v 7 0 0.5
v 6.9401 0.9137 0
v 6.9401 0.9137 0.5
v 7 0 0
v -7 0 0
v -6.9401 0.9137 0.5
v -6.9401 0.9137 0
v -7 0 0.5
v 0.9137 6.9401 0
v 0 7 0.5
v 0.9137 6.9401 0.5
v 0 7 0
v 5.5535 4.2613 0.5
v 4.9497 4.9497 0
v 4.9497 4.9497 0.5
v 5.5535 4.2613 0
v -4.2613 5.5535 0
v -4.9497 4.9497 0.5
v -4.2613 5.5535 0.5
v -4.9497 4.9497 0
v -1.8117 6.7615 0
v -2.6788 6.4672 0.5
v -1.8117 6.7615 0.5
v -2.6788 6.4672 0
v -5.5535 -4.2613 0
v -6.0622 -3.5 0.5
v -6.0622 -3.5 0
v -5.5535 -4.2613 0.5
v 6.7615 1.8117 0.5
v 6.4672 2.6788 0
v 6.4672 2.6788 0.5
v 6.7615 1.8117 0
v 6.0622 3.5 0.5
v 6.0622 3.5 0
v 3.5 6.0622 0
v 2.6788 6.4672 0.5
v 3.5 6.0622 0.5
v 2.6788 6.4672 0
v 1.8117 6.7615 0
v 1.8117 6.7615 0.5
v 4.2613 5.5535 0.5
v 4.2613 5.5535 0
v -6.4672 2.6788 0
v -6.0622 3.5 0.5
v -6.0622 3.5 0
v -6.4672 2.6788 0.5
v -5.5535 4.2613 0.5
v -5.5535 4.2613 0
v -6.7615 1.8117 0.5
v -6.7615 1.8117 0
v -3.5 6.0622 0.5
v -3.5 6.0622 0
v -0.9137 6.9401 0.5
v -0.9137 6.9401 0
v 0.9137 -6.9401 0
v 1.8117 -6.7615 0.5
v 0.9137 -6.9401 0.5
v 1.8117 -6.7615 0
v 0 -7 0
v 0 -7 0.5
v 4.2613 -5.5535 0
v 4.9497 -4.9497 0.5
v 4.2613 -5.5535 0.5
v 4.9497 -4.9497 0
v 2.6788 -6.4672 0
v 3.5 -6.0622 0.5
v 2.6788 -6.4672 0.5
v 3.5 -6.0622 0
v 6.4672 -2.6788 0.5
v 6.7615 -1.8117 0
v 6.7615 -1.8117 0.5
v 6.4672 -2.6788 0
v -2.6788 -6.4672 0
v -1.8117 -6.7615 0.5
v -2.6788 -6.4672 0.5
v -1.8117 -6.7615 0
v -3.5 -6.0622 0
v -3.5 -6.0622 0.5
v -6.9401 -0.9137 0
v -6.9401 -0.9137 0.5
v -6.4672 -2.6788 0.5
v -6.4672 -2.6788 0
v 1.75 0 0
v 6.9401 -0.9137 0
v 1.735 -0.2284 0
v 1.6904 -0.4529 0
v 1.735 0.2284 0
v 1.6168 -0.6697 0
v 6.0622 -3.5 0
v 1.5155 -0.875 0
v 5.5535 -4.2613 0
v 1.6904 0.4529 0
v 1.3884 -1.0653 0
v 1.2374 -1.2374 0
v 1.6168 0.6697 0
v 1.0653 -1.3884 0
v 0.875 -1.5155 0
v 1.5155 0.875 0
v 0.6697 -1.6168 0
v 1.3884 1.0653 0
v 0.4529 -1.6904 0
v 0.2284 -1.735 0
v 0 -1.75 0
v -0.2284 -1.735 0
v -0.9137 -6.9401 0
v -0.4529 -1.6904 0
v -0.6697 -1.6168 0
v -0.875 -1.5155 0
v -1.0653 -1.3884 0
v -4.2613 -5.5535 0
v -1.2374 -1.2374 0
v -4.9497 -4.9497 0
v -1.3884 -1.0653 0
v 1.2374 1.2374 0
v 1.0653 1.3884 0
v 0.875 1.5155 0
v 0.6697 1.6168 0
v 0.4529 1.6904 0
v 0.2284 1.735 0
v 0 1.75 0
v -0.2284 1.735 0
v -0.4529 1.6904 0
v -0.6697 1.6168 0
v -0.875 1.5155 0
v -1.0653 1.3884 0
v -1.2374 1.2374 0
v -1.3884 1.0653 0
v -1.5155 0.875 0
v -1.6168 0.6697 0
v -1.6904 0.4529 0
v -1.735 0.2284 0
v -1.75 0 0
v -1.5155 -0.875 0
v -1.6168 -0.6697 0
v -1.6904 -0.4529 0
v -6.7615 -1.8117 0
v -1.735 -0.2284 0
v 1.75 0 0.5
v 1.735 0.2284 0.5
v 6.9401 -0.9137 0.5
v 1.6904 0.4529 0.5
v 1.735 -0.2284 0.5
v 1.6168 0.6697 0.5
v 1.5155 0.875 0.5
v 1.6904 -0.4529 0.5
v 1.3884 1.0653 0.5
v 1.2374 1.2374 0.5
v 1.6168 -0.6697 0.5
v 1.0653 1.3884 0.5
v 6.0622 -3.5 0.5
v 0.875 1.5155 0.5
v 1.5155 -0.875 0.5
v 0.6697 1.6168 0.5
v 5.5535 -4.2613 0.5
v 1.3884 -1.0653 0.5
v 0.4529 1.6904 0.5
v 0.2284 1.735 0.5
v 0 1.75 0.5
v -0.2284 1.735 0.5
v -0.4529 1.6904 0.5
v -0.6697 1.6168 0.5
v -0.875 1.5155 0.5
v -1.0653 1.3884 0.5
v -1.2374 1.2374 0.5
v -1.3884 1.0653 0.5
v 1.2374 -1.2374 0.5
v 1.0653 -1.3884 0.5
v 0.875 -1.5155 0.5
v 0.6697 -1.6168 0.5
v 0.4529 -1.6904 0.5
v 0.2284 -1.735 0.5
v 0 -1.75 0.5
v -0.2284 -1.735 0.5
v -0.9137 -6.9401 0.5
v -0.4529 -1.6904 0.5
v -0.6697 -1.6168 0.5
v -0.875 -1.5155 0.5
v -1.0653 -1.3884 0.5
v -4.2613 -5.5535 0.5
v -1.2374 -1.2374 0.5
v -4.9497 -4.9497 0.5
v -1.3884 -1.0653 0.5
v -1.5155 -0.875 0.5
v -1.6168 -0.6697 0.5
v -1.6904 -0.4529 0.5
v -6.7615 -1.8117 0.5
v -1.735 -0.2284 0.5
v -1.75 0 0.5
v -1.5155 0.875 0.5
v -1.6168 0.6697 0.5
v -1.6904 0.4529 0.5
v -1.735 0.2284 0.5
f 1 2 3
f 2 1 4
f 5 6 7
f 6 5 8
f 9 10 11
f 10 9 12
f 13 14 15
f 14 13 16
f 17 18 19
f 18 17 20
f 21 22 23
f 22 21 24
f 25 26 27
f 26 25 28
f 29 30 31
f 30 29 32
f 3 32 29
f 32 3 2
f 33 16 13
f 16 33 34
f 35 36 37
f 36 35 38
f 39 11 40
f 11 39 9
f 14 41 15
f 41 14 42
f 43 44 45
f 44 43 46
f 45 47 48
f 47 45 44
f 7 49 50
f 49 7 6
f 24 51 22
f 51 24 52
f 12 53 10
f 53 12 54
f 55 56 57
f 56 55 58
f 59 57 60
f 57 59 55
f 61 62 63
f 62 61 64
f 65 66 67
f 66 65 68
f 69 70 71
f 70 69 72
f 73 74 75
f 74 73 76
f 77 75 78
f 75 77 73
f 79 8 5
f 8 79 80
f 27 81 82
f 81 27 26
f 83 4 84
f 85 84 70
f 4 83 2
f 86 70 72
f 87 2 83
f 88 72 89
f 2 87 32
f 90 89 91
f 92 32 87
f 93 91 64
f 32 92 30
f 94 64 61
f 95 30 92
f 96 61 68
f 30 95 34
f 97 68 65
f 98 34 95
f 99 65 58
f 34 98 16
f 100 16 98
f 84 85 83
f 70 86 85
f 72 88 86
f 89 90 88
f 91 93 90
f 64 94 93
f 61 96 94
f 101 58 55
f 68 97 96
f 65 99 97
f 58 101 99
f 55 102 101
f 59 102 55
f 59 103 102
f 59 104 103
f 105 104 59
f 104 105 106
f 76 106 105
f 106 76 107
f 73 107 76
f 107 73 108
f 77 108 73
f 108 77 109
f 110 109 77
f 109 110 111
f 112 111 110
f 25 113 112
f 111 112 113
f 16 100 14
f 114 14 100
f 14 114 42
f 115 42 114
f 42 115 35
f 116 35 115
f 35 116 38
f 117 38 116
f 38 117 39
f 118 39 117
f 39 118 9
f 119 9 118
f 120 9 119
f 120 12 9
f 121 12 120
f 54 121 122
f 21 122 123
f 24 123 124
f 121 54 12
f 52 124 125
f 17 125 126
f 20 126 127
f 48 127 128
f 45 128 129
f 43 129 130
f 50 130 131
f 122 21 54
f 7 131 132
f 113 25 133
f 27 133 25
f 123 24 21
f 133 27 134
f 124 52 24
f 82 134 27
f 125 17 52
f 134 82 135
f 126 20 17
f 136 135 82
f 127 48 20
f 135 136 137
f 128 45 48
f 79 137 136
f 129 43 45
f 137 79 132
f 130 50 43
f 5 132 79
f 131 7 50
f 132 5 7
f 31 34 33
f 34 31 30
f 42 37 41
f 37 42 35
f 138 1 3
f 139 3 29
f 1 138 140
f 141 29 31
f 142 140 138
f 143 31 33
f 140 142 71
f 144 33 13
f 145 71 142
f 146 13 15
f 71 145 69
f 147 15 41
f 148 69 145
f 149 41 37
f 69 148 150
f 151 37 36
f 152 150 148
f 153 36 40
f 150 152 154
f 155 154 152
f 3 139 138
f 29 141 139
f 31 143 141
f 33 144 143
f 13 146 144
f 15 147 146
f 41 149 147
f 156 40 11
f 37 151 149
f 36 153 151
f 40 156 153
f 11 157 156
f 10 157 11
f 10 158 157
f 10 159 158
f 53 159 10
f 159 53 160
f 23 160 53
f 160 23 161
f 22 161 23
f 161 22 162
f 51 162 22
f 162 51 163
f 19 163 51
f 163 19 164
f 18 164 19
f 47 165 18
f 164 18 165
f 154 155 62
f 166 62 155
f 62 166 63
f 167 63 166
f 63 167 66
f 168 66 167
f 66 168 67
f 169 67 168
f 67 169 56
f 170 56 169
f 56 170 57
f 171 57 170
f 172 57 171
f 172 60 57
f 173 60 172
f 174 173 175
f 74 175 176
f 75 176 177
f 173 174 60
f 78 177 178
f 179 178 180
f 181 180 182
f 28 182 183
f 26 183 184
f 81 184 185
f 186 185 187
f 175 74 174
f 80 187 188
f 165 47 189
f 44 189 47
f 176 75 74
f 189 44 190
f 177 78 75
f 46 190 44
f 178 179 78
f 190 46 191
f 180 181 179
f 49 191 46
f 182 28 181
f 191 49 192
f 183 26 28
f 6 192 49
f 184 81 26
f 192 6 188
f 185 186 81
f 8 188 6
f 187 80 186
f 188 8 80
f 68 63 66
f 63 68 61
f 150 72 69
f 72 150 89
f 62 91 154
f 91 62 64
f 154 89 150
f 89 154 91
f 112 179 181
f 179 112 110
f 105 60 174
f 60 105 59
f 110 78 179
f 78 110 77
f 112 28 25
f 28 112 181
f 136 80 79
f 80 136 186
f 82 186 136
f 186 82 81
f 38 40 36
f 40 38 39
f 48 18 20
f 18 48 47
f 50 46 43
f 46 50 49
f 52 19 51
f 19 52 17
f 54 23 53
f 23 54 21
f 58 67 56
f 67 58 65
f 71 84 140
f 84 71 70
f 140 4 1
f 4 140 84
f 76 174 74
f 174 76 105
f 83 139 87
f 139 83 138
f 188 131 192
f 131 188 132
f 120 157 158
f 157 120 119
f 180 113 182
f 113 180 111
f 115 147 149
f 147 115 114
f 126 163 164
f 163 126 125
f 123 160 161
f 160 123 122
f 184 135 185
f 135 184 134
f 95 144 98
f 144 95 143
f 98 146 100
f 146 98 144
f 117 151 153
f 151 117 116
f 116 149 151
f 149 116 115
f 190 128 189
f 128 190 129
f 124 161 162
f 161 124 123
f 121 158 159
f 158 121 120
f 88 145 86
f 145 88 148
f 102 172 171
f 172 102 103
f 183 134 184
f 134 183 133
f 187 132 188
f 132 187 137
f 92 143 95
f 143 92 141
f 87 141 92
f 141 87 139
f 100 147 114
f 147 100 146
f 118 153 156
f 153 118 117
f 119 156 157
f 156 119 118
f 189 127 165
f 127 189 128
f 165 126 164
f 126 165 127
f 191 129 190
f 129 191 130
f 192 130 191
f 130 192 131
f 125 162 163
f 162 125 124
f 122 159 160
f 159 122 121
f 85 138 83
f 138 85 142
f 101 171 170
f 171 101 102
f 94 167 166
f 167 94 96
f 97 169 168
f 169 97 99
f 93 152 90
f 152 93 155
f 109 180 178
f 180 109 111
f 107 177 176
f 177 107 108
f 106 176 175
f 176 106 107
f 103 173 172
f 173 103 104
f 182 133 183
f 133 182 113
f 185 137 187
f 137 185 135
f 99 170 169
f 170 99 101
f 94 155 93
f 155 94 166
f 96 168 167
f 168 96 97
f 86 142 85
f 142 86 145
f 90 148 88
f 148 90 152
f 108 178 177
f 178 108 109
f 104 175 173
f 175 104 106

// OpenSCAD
// file: parameters.scad
// =============================================================================
// Gen-CF — nightly 2026-10-14 (physics_scorer, honest magpylib watts)
// Stator-only upgrade for an existing Gen-CA: the R84 arcs, hubs and Ø194 steel stay as they are; a new annular 12-bobbin stator with 4.65 mm copper (Gen-CD-style thin window) and r63–105 bobbins replaces the old r64–104 × 4.95 mm stator, together with a shorter gap sleeve and matching frame rods / bridges. Frame rods pushed to R108.5 for ≥1.0 mm web to the bays. No new magnets or steel. Scans showed no R84 stator beats Gen-CA’s own 8.492 W; this kit is the best distinct modular swap (≈8.41 W scan, ≈375 m).
// Clocking 0 deg (magnets N facing S) + D-flat keyed bore + index notch + flip-symmetric hole map.
// Windable 2-piece bobbin; turns = physics_scorer turns_fit; copper only between flanges.
// Steel back-iron: 2× Ø194 × 4.76 mm (3/16") mild-steel discs (steel_backiron_disc.dxf); magnets sit ON the steel
// (through-pockets) -> score with --back-iron. Night 2026-10-14.
// =============================================================================
topology            = "dual_rotor";

// --- Wire / winding (physics_scorer winding-fit) -------------------------------
wire_awg            = 26;
wire_od             = 0.45;     // insulated OD mm (bare 0.405)
fill_realistic      = 0.65;     // insulated-wire area / window (DENSE layered wind with a jig; scorer cap 0.65)
turns               = 347;       // = physics_scorer turns_fit (do NOT raise)
coil_former_type    = "bobbin";
coil_core_inset     = 18.26;     // radial copper build: hub = copper boundary inset by this
wind_build_axial    = 0.0;      // nothing proud of the flanges
wind_build_radial   = 0.0;

// --- Bobbin (base + lid) ---------------------------------------------------------
coil_id_r           = 63.00;    // copper boundary sector
coil_od_r           = 105.00;
span_deg            = 26.82;    // = pitch - 2*asin((wall+0.85)/coil_id_r) -> >=1.2 mm stator web
former_web          = 4.65;     // copper height between flanges (TALL copper: steel keeps Bz up)
flange_t            = 0.80;     // >= 0.8 mm FDM wall rule (tall winds push on the flanges)
wall                = 0.80;     // flange lip beyond copper
former_bare_h       = former_web + 2 * flange_t;
coil_envelope_h     = former_bare_h + 2 * wind_build_axial;
tab_w               = 7.0;
tab_len             = 7.0;
tab_h               = former_bare_h / 2;
pin_d               = 1.9;      // 1.75 mm filament locating pin
coil_mount_r        = coil_od_r + 0.2 + 4.0;
lead_y              = 1.6;
lead_slot_w         = 0.9;
lead_groove_d       = 0.6;

// --- Gap -------------------------------------------------------------------------
run_clear           = 0.50;     // rotor face -> flange
gap_spacer_h        = run_clear + wind_build_axial;
m2m                 = coil_envelope_h + 2 * run_clear;   // rotor face to rotor face (= gap_sleeve length)

// --- Stator ----------------------------------------------------------------------
coil_stations       = 12;
bay_clear           = 0.35;     // 0.35 mm: bobbin BASES print IN PLACE inside the stator bays (print-in-place gap), then pop out
stator_thick        = former_bare_h;                        // bobbins flush both faces
stator_od           = 228;
shaft_clear_stator  = 14.0;     // stator is static; gap sleeve OD 12 spins inside
stator_ir           = 57.85;    // ANNULAR stator: open centre (nested one-plate pack); inner rim 4.0 mm

// --- Rotor(s) --------------------------------------------------------------------
magnet_Br           = 1.43;     // N52
magnet_d_large      = 20.0;
magnet_h_large      = 5.0;      // one O20x5 per pocket
magnet_h_small      = 5.0;      // unused: no O5 pockets in this kit
halbach_magnetisation = "none";  // NO O5 assist magnets in this kit (scan: they lower the 4-pole score)
rotor_b_same_axis   = true;     // same-index magnets share one axis: N faces S across the gap
large_pocket_d      = 20.3;
small_pocket_d      = 5.3;
pocket_h            = 5.00;     // THROUGH the carrier: magnet back face sits on the steel disc (FLUSH seat: carrier = magnet height, magnet face level with the rotor face)
large_n             = 8;
R_large             = 84.0;
small_r_list        = [];       // no O5 pockets
carrier_od          = 194.0;
ring_ir             = 70.85;    // RING rotor: PLA magnet ring r ring_ir..carrier_od/2 (steel disc = structural rotor)
hub_flange_od       = 74.0;     // separate rotor_hub flange (inside the ring, flush with the ring face)
csk_d               = 6.6;      // M3 countersunk head pocket (ISO 10642 head 6.0 nominal) on the stator face
csk_depth           = 1.55;     // = (csk_d - m3_clear) / 2: 90 deg cone; head sits 0.3 mm below the face
n_seg               = 8;        // magnet-carrier ARCS per rotor (segmented carrier)
seg_deg             = 360 / n_seg;
seg_start           = -22.5;   // arc edge angle (between pocket 0 and its clamp bolt)
seg_kerf_deg        = 0.4;      // gap between neighbouring arcs on the steel
carrier_thick       = pocket_h;
hub_h               = 12.0;     // > steel_t + insert: radial set-screw clears the steel
hub_od              = 24.0;     // slim hub so the M4 brace rods fit at R~18 inside the coil ring
hub_insert_d        = 4.0;      // M3 heat-set insert, radial, bears on the D-flat
rotor_b_offset_deg  = 0.0;      // CLOCKING: magnets directly opposite
shaft_key           = "dflat";
dflat_depth         = 0.5;      // 8 mm shaft with 0.5 mm flat (7.5 across flat)
index_notch_d       = 3.0;

// --- Steel back-iron (buyable laser-cut) -------------------------------------------
steel_t             = 4.76;      // mild steel thickness (image method ignores it; sized from steel_flux.py so the return path stays well below saturation)
steel_center_hole   = 26.0;     // slips over the rotor hub (OD 24)
steel_od            = carrier_od;   // steel disc OD = rotor carrier OD

// --- Modular MAX interface ----------------------------------------------------------
shaft_bore          = 8.35;
dflat_x             = 4.0 - dflat_depth + (shaft_bore - 8.0) / 2;
bearing_d           = 21.85;
bearing_h           = 7.2;
m3_clear            = 3.5;
bolt_r_inner        = 30.0;     // M3 steel-disc clamp bolts (inside the magnet ring)
bolt_n_inner        = 4;
bolt_inner_angles   = [0, 90, 180, 270];
bolt_r_outer        = 84.0;     // second M3 steel-disc clamp ring
bolt_outer_angles   = [22.5, 67.5, 112.5, 157.5, 202.5, 247.5, 292.5, 337.5];
flange_bolt_r       = 108.5;     // frame rods: OUTSIDE the rotor OD (rotors spin inside them)
flange_bolt_n       = 4;
flange_bolt_offset  = 45.00;    // between coil stations -> never cuts a lead groove/tab
brace_r             = 18.0;
brace_d             = 4.3;      // temporary M4 jack rods (assembly only)
brace_n             = 4;
brace_angles        = [45, 135, 225, 315];          // flip-symmetric

spacer_pad_od       = 14.0;
spacer_pad_id       = m3_clear;
endbell_od          = 227.0;
endbell_thick       = 8.0;
endbell_shaft_clear = 10.0;
collar_h            = 10.0;
standoff_od         = 9.0;
frame_standoff_h    = run_clear + carrier_thick + hub_h + collar_h + 2.0;
sleeve_od           = 12.0;
plate_max_mm        = 410;

$fn = 64;
// main file
// Gen-CF — assembly gap shim, h = run_clear (rotor face -> flange); copper is inside the flanges
include <parameters.scad>;
$fn = 48;
difference() {
    cylinder(d=spacer_pad_od, h=gap_spacer_h);
    translate([0, 0, -0.1]) cylinder(d=spacer_pad_id, h=gap_spacer_h + 0.2);
}
